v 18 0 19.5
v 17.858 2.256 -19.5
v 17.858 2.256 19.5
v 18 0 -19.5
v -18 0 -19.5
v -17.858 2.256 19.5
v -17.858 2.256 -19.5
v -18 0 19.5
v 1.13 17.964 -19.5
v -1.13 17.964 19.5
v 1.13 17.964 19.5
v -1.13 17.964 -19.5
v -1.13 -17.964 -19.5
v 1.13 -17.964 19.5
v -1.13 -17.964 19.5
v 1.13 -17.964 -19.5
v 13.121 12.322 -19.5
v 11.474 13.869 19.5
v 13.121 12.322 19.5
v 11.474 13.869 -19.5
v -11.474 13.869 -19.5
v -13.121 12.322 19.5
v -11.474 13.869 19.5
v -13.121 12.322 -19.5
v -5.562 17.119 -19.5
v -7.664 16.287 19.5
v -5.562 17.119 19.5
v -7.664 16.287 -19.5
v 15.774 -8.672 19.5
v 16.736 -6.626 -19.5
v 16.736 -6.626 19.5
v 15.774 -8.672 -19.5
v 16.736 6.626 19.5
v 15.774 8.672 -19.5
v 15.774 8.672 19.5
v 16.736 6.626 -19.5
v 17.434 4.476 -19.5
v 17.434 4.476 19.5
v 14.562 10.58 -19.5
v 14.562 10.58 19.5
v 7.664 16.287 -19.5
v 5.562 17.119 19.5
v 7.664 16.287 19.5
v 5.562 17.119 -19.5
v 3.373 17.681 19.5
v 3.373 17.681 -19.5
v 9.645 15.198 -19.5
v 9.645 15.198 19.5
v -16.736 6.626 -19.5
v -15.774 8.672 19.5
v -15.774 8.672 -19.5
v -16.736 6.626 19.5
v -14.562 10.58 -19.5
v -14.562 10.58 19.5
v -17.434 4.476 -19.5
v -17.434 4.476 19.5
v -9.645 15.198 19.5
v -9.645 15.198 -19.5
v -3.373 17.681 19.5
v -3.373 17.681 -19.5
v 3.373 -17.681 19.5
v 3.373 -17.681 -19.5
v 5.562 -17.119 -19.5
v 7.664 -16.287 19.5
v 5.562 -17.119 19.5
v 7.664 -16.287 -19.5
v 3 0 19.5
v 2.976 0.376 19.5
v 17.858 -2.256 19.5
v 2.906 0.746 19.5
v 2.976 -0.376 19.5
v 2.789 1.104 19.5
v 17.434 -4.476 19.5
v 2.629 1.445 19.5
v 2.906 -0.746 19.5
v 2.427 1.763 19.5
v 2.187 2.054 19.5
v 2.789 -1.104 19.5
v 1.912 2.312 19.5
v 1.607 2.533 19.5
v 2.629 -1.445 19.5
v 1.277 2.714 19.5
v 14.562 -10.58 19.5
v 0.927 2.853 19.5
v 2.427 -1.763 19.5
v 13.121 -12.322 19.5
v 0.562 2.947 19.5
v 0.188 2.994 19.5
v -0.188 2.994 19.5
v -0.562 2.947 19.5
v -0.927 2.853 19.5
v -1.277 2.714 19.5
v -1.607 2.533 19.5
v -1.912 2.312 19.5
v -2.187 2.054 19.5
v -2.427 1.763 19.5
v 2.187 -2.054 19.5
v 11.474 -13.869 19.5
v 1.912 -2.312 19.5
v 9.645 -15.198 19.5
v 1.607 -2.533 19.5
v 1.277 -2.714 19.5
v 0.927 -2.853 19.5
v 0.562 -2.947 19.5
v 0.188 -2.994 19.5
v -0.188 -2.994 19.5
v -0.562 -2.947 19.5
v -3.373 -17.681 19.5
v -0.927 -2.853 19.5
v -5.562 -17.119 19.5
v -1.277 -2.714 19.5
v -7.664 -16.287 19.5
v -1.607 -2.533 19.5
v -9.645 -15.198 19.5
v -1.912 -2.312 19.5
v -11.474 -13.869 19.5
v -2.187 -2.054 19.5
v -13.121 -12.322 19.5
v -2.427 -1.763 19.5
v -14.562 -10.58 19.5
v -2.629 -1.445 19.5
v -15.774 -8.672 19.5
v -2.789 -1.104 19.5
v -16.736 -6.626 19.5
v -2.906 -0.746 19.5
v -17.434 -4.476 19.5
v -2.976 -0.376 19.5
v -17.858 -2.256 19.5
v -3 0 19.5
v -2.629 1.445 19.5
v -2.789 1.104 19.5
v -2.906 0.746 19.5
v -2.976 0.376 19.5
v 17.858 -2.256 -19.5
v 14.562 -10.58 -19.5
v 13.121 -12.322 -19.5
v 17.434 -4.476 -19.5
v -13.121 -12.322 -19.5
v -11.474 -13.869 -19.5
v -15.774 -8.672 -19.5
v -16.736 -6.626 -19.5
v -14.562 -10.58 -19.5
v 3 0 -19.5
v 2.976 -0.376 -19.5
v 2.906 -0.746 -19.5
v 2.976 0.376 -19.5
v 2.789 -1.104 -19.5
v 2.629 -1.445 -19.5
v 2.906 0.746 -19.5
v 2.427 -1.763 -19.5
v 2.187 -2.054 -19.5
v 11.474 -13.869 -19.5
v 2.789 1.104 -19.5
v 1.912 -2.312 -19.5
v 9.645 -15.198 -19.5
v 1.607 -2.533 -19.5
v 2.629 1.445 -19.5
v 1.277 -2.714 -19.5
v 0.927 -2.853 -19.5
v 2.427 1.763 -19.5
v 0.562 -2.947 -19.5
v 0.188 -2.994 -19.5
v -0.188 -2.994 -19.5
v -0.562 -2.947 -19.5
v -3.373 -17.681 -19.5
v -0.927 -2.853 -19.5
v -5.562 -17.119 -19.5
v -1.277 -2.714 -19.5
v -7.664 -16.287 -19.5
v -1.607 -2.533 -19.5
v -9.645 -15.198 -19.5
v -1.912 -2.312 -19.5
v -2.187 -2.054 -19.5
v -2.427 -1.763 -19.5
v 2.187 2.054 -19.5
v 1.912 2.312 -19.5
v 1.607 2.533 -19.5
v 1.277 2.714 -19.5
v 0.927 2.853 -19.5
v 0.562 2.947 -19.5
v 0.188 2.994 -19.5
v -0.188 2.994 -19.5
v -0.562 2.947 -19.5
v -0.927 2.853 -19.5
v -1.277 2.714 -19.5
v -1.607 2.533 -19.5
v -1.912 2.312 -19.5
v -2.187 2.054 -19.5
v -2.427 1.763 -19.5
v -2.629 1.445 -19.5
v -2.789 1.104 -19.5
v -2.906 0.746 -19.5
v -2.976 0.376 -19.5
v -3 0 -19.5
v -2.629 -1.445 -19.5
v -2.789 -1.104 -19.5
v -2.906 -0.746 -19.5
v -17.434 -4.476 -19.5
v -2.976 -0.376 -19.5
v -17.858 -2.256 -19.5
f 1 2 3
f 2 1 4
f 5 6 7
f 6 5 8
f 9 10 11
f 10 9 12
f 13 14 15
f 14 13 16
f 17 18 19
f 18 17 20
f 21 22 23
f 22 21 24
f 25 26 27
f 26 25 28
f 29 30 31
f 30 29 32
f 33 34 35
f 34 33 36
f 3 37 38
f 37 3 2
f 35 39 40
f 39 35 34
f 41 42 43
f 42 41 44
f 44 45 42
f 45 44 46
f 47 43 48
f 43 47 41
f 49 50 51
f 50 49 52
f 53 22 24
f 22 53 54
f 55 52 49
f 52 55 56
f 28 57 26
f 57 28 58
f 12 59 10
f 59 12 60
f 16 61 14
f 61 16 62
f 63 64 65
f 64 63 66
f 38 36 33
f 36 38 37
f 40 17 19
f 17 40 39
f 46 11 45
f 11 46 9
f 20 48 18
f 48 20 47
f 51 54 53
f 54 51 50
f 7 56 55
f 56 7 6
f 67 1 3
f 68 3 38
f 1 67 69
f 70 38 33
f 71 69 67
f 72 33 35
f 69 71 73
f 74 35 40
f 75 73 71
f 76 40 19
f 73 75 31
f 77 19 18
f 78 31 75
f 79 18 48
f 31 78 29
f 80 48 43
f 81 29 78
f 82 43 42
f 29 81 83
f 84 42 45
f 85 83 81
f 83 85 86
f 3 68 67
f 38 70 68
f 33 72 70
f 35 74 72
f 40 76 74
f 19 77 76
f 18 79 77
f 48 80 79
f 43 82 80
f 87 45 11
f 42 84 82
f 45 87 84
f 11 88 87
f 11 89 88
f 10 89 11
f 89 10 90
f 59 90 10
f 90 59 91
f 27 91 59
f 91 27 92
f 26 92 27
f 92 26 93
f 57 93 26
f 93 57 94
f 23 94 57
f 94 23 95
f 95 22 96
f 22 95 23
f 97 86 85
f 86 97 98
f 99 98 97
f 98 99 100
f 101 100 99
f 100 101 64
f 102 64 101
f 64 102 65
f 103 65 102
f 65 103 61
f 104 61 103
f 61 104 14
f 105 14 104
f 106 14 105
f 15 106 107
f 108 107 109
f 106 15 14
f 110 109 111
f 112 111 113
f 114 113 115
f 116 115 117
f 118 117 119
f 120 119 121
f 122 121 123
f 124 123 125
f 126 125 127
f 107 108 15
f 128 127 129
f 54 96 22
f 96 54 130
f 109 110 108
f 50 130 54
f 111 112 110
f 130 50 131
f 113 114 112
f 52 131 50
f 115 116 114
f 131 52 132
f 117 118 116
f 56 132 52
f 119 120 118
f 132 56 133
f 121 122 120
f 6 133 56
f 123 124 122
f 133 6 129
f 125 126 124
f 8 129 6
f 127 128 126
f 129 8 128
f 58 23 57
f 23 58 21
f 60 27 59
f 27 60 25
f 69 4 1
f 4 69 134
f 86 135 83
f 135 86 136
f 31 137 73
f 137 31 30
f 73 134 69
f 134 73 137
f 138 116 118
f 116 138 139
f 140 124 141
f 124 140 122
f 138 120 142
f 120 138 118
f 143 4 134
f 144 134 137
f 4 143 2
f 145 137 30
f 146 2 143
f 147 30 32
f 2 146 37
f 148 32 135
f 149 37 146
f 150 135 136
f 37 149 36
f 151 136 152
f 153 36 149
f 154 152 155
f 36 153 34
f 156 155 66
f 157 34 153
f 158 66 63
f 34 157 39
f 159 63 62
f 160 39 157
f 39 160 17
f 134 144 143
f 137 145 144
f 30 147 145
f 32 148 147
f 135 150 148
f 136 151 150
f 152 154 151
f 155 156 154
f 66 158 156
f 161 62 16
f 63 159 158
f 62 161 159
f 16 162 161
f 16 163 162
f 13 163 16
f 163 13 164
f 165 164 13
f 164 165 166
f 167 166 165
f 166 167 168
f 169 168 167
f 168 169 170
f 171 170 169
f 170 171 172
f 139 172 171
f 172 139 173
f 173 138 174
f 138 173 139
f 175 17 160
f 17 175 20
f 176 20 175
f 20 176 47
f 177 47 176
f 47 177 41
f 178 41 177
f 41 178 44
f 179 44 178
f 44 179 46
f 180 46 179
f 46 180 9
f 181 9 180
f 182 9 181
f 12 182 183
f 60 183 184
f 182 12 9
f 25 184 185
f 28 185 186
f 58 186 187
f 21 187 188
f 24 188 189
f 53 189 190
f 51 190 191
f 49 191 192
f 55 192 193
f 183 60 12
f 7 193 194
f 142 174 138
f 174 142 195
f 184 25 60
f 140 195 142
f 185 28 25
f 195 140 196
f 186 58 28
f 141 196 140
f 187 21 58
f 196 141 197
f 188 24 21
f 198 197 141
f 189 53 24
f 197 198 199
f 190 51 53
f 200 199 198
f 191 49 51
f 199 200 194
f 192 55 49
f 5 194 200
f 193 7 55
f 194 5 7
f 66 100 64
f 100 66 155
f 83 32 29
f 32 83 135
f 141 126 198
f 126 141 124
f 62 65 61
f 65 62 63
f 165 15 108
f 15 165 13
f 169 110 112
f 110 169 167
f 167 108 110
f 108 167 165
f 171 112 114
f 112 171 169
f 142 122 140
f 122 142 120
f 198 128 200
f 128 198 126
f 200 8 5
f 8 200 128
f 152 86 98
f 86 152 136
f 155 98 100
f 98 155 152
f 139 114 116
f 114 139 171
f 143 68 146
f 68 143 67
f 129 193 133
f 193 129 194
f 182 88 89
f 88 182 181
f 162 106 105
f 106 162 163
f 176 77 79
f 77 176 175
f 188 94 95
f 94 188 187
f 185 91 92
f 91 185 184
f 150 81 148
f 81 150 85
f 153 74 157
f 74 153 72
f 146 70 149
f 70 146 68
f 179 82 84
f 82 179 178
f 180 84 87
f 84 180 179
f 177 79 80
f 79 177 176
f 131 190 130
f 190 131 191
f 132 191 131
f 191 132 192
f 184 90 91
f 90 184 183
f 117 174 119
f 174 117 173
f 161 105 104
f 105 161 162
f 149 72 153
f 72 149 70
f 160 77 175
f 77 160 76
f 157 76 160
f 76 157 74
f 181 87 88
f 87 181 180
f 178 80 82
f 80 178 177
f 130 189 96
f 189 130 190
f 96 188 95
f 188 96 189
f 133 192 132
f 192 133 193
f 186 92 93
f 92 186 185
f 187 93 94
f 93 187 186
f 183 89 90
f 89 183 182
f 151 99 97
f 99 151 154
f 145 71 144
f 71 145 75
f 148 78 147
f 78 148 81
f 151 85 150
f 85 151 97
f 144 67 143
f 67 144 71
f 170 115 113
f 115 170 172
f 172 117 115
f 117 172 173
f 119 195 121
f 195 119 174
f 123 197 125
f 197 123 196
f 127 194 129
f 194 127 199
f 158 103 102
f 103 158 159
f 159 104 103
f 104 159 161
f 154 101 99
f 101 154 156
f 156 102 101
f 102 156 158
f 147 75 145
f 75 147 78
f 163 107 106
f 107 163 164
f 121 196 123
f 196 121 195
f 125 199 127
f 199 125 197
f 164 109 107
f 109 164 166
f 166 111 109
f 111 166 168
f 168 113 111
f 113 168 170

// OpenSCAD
$fn = 50;


difference() {
	union() {
		translate(v = [0, 0, -19.5000000000]) {
			cylinder(h = 39, r = 18.0000000000);
		}
	}
	union() {
		translate(v = [0, 0, -100.0000000000]) {
			cylinder(h = 200, r = 3.0000000000);
		}
	}
}
